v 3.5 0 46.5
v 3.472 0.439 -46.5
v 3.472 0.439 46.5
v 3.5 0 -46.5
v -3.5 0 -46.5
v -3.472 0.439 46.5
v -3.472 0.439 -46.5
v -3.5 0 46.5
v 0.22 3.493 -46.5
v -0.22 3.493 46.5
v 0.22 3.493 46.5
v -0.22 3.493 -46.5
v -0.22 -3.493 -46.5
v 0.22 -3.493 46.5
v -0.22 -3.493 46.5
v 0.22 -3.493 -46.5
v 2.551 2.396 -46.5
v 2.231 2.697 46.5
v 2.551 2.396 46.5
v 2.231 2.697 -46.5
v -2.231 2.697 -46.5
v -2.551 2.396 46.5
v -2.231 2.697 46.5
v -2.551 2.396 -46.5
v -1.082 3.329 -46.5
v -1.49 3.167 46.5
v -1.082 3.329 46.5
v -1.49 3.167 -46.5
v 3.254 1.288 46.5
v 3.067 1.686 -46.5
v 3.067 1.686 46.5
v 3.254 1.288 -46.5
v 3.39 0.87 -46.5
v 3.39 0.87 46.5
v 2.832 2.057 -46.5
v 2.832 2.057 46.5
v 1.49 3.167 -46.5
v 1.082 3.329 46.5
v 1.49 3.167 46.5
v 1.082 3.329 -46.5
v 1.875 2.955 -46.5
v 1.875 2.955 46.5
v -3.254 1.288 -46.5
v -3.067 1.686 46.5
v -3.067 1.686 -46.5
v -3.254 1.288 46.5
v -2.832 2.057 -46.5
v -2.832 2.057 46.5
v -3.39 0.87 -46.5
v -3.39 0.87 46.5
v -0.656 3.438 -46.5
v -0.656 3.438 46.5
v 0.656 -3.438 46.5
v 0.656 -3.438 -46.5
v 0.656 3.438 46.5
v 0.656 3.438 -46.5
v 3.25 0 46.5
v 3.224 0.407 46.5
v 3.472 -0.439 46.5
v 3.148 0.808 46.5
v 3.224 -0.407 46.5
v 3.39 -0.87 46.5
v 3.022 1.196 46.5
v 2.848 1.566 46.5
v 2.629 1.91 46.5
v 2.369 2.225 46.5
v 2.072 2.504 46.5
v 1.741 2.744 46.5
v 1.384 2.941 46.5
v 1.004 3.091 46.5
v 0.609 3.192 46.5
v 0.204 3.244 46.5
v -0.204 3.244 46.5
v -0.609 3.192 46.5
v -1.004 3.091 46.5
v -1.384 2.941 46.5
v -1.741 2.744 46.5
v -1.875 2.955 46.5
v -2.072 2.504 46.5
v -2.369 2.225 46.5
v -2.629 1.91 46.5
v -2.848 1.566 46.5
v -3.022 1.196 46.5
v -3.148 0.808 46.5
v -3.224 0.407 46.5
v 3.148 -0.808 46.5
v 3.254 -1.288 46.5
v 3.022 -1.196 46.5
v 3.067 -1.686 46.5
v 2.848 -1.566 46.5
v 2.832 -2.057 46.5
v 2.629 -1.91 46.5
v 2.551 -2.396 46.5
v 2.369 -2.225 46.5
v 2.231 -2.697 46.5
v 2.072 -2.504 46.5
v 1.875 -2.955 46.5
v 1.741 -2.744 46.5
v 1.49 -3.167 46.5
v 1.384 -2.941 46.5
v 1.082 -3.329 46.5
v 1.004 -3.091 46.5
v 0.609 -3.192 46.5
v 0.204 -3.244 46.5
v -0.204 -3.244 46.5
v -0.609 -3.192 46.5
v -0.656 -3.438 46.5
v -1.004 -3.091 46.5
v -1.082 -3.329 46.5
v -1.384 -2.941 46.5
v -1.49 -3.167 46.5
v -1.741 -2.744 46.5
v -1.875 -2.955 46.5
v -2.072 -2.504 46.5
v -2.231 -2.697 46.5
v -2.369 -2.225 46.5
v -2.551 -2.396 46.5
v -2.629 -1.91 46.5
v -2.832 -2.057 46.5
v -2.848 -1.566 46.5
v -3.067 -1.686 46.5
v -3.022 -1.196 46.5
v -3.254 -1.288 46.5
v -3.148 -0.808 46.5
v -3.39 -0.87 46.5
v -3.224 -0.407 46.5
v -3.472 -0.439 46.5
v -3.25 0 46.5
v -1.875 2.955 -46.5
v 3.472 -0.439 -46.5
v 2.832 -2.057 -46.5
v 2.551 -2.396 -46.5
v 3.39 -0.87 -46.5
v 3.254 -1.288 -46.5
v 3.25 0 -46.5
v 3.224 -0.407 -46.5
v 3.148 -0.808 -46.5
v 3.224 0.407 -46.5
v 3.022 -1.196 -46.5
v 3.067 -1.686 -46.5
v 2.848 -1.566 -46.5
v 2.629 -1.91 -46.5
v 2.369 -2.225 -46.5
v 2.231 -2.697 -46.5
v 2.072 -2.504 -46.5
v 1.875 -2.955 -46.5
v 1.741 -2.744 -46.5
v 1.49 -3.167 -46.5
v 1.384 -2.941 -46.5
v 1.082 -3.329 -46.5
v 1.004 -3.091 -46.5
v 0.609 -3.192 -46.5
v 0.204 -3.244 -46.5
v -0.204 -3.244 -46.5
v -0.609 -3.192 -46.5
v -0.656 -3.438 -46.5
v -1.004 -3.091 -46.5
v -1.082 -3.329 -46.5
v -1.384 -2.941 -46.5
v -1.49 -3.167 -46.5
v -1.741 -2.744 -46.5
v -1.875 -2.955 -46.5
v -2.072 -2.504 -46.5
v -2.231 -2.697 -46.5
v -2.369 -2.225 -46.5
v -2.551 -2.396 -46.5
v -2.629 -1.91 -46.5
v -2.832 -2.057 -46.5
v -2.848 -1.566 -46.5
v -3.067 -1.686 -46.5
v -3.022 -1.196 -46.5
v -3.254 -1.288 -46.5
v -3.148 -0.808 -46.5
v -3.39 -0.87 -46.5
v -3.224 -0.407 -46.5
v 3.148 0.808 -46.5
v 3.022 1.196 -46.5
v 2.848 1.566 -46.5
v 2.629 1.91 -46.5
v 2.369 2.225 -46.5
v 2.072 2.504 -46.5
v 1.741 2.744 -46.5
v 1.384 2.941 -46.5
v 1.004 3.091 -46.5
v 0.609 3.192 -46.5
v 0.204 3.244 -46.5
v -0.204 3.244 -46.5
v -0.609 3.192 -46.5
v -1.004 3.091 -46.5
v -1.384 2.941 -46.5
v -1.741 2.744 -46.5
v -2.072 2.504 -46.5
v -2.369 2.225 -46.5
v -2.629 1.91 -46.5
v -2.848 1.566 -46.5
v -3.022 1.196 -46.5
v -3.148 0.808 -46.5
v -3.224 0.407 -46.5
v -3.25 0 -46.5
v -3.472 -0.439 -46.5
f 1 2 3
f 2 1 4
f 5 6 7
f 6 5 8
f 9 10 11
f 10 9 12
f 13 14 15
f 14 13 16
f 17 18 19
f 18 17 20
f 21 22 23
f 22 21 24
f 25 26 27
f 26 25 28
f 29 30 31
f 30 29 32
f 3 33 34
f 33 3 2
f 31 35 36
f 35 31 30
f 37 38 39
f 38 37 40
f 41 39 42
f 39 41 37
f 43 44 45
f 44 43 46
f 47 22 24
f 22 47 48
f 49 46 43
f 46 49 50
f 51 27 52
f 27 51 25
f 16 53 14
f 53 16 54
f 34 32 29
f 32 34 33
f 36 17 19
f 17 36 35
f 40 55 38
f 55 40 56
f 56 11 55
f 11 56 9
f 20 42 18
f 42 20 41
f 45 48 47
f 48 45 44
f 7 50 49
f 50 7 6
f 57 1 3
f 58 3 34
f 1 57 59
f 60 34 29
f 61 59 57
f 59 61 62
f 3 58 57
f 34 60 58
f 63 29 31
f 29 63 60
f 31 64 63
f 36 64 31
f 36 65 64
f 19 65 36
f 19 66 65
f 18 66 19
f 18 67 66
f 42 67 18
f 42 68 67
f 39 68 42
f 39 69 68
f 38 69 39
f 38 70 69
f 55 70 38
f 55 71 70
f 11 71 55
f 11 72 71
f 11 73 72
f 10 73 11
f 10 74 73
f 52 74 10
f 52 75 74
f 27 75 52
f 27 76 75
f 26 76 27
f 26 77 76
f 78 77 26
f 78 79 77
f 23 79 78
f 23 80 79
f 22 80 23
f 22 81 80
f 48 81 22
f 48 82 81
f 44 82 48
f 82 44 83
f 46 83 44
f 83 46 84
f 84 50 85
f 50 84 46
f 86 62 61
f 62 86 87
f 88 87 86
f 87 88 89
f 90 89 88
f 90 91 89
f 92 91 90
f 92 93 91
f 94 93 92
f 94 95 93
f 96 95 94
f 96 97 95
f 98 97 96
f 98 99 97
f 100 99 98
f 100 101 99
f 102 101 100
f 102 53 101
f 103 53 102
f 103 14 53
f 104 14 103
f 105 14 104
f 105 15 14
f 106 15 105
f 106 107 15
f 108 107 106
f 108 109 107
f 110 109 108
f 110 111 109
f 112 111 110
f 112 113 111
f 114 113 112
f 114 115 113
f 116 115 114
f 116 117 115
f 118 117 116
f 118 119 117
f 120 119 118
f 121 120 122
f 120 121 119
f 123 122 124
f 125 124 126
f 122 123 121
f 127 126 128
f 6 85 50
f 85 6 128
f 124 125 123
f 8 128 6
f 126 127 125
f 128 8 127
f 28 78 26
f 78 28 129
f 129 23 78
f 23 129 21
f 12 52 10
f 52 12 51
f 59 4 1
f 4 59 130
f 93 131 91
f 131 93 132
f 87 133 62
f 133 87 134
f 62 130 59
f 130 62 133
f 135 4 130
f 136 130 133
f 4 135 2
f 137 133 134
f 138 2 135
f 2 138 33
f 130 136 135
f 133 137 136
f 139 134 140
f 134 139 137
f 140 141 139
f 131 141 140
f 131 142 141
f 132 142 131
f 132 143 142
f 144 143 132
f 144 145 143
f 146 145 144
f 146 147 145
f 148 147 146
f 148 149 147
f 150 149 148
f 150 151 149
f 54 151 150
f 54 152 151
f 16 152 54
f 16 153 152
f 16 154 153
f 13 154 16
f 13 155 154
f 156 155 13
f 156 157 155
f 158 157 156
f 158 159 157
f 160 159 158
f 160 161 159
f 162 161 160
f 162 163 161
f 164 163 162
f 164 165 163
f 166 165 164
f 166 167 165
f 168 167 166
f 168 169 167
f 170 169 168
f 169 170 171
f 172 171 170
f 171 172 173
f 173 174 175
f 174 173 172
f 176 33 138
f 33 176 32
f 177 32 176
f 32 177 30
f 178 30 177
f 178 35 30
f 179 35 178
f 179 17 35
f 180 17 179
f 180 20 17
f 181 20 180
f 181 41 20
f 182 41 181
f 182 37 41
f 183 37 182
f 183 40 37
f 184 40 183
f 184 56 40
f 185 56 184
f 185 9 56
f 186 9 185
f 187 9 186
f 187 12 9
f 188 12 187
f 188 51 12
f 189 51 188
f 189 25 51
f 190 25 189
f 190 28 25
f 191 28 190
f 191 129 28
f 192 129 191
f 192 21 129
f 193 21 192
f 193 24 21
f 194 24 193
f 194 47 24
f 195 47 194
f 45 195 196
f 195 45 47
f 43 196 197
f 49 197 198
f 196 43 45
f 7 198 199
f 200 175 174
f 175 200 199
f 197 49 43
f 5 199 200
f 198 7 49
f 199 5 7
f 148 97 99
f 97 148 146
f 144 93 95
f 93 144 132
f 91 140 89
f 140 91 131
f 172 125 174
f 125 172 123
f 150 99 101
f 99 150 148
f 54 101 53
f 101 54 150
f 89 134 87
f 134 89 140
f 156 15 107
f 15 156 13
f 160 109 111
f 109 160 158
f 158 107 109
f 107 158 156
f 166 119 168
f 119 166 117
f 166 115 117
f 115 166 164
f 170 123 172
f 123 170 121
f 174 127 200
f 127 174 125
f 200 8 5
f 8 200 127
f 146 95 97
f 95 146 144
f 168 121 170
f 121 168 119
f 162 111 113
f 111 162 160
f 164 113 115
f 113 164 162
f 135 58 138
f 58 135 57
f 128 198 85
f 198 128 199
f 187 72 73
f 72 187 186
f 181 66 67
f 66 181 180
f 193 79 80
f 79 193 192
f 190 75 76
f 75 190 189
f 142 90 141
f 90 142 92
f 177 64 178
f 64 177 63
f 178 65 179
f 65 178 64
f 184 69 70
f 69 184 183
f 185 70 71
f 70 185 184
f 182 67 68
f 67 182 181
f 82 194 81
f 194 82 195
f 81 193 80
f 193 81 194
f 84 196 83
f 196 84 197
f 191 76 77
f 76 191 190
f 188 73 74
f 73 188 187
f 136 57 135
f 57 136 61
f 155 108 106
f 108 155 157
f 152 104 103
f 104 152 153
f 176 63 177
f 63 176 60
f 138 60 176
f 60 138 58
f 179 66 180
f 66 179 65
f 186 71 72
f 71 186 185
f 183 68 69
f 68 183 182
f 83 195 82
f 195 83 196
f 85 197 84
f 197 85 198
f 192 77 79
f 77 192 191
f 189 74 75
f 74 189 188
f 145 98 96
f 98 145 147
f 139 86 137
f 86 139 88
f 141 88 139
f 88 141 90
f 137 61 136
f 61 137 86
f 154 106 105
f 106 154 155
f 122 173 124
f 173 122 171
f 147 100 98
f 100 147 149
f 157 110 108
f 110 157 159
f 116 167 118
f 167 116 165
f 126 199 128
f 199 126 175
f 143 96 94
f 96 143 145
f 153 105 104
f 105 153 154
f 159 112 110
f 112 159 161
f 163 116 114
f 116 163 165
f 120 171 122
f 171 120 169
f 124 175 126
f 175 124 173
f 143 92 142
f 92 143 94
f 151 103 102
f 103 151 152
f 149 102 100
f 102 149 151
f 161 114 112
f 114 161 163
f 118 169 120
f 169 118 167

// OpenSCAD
$fn = 50;


difference() {
	union() {
		translate(v = [0, 0, -46.5000000000]) {
			cylinder(h = 93, r = 3.5000000000);
		}
	}
	union() {
		translate(v = [0, 0, -100.0000000000]) {
			cylinder(h = 200, r = 3.2500000000);
		}
	}
}
